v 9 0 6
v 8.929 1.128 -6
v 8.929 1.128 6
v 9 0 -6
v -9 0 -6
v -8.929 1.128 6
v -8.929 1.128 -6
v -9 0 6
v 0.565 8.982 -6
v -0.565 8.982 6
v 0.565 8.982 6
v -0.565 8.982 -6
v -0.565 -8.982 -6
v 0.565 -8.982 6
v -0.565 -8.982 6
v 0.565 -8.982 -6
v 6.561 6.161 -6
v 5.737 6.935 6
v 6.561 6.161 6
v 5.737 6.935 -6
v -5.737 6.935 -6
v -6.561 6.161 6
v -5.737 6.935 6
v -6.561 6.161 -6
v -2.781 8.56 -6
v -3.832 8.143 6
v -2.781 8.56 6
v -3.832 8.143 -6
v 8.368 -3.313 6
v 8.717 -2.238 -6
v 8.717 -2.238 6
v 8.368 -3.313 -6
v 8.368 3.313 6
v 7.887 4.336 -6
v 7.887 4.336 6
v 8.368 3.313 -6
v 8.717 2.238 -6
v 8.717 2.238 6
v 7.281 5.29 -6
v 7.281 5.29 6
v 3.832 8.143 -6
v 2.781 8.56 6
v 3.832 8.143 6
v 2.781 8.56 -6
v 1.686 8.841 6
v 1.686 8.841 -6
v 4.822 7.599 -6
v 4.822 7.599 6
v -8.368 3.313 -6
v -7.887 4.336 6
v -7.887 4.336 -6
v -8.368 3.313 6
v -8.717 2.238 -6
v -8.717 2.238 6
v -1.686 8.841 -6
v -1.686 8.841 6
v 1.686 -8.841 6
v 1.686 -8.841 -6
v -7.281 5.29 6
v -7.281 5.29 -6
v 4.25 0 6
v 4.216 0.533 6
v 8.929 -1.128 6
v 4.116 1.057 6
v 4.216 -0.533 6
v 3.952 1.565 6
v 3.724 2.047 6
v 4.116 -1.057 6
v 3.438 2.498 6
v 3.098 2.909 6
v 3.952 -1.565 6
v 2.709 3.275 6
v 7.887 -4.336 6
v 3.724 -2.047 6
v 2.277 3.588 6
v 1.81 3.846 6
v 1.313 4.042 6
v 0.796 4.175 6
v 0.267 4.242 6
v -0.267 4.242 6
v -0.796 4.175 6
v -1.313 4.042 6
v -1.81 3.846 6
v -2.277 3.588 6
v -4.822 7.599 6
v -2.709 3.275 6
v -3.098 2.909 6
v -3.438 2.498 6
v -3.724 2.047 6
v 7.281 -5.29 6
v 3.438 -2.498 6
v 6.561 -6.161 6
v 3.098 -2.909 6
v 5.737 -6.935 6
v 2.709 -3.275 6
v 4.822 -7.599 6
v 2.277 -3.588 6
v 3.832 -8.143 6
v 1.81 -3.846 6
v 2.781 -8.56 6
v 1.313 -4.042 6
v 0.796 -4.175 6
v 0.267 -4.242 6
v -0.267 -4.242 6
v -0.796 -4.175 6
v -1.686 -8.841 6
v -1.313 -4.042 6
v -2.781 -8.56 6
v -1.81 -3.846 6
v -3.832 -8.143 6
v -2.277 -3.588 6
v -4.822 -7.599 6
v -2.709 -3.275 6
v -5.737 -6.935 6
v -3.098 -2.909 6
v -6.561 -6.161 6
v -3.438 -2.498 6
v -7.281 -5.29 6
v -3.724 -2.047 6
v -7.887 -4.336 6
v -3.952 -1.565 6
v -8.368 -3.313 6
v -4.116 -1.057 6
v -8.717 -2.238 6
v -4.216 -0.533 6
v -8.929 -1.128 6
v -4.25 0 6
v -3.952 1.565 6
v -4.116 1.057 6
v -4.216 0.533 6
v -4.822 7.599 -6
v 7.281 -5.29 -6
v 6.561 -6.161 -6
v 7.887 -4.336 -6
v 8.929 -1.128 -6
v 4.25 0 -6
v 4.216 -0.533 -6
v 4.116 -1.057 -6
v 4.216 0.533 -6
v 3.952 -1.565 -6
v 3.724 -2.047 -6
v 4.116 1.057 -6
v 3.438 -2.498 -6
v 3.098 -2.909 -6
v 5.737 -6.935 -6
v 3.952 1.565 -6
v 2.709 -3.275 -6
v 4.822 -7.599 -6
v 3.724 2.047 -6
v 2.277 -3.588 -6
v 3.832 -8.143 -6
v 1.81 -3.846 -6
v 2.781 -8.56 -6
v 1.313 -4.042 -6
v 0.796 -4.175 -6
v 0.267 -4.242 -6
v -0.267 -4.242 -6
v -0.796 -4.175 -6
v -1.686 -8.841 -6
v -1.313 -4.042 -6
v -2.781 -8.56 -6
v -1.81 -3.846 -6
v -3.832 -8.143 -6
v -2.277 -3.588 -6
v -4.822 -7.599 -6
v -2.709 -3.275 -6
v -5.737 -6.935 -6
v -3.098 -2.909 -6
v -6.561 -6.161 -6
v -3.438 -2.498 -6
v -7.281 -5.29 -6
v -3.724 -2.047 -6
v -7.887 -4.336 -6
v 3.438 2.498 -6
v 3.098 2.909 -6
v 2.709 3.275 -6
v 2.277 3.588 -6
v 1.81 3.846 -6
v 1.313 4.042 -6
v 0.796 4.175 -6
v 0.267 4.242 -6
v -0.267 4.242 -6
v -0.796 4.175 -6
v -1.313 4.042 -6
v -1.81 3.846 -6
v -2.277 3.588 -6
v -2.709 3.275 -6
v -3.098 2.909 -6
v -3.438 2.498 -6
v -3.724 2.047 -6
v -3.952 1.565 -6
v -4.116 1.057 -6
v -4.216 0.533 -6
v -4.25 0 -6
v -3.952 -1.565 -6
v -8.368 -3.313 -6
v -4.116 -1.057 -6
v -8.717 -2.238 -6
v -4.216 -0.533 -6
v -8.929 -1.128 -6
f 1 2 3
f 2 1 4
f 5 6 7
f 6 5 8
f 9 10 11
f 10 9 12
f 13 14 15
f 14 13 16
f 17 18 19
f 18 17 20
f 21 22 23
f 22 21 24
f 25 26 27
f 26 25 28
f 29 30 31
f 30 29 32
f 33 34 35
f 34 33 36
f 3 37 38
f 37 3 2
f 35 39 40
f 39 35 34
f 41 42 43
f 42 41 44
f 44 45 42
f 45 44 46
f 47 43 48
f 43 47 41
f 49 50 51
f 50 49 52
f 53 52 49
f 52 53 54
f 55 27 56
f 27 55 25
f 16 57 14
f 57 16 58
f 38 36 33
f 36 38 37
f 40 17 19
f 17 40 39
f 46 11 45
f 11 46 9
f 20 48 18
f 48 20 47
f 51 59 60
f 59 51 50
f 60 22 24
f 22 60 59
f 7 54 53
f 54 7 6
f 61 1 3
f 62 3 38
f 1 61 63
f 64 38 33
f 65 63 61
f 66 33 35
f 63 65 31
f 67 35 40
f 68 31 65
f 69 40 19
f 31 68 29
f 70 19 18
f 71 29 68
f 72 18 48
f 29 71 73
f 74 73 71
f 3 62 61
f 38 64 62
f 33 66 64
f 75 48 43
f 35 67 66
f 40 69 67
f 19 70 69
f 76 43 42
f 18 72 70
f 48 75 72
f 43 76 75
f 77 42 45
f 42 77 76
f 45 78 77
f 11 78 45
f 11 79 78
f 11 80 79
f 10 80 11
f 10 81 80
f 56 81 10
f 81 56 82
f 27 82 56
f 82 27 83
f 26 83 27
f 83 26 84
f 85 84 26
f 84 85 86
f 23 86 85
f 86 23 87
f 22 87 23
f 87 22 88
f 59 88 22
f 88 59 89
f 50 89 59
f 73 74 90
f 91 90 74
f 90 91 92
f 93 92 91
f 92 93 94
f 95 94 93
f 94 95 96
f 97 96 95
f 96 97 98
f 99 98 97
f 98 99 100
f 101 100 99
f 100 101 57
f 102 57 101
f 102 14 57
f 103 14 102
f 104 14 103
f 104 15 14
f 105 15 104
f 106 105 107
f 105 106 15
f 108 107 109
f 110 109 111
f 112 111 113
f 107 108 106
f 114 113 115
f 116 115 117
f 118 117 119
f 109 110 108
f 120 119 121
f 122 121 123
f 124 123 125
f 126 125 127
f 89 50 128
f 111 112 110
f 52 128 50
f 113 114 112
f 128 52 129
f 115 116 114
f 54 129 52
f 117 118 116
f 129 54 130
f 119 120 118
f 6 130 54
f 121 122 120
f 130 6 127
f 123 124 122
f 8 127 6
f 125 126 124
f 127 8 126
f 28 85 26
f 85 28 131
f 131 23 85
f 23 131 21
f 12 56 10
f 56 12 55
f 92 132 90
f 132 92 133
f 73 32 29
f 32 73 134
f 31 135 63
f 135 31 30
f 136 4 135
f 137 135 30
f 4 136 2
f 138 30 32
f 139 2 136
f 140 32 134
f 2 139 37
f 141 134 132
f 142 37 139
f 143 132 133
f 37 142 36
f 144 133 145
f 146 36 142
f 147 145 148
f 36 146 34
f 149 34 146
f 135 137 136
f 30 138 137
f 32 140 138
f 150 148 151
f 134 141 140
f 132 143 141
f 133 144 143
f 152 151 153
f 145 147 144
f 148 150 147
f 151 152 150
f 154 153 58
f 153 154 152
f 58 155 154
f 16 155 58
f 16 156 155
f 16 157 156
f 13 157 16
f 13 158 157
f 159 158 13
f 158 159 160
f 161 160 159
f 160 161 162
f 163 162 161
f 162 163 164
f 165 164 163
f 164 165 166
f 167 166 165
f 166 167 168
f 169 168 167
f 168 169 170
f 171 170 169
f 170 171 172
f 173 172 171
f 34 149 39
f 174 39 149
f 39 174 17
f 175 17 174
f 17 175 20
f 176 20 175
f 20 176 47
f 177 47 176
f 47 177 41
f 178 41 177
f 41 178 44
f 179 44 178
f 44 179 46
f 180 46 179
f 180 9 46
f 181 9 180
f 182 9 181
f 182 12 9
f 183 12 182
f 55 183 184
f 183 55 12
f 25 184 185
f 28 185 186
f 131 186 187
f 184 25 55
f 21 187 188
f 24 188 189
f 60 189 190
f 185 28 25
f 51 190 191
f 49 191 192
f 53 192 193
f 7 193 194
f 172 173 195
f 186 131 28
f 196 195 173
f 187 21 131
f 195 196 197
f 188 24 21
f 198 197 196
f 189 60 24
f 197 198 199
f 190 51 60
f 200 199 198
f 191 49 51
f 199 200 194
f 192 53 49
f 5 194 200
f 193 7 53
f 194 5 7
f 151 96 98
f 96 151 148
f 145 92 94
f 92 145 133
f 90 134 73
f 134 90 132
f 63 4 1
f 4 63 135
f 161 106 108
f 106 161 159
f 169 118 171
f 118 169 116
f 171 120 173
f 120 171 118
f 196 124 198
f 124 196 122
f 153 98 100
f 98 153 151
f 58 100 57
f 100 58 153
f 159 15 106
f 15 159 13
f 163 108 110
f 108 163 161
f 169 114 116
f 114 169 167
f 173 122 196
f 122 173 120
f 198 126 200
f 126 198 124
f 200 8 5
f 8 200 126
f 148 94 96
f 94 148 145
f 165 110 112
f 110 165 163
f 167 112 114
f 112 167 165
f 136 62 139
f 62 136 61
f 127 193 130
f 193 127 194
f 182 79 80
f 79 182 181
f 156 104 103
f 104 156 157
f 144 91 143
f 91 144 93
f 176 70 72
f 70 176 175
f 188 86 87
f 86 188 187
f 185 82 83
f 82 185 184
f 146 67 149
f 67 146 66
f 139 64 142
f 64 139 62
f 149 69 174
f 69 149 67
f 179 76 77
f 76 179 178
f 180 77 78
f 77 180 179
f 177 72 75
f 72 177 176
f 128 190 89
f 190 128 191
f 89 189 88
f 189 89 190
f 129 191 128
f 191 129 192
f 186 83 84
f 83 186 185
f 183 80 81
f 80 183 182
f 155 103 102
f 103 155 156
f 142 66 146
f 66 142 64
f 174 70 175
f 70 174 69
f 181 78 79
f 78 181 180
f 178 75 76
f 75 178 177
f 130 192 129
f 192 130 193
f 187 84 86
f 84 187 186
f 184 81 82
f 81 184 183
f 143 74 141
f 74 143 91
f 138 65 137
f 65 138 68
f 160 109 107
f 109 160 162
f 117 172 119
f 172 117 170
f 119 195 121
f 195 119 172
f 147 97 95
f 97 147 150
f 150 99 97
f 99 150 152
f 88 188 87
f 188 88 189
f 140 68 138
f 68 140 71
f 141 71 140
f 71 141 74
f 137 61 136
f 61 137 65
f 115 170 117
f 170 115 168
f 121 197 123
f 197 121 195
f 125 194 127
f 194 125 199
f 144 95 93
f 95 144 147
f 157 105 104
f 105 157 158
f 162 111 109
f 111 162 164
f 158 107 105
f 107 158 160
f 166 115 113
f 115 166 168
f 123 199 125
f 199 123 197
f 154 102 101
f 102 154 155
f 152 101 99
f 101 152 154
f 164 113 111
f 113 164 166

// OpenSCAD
$fn = 50;


difference() {
	union() {
		translate(v = [0, 0, -6.0000000000]) {
			cylinder(h = 12, r = 9.0000000000);
		}
	}
	union() {
		translate(v = [0, 0, -100.0000000000]) {
			cylinder(h = 200, r = 4.2500000000);
		}
	}
}
